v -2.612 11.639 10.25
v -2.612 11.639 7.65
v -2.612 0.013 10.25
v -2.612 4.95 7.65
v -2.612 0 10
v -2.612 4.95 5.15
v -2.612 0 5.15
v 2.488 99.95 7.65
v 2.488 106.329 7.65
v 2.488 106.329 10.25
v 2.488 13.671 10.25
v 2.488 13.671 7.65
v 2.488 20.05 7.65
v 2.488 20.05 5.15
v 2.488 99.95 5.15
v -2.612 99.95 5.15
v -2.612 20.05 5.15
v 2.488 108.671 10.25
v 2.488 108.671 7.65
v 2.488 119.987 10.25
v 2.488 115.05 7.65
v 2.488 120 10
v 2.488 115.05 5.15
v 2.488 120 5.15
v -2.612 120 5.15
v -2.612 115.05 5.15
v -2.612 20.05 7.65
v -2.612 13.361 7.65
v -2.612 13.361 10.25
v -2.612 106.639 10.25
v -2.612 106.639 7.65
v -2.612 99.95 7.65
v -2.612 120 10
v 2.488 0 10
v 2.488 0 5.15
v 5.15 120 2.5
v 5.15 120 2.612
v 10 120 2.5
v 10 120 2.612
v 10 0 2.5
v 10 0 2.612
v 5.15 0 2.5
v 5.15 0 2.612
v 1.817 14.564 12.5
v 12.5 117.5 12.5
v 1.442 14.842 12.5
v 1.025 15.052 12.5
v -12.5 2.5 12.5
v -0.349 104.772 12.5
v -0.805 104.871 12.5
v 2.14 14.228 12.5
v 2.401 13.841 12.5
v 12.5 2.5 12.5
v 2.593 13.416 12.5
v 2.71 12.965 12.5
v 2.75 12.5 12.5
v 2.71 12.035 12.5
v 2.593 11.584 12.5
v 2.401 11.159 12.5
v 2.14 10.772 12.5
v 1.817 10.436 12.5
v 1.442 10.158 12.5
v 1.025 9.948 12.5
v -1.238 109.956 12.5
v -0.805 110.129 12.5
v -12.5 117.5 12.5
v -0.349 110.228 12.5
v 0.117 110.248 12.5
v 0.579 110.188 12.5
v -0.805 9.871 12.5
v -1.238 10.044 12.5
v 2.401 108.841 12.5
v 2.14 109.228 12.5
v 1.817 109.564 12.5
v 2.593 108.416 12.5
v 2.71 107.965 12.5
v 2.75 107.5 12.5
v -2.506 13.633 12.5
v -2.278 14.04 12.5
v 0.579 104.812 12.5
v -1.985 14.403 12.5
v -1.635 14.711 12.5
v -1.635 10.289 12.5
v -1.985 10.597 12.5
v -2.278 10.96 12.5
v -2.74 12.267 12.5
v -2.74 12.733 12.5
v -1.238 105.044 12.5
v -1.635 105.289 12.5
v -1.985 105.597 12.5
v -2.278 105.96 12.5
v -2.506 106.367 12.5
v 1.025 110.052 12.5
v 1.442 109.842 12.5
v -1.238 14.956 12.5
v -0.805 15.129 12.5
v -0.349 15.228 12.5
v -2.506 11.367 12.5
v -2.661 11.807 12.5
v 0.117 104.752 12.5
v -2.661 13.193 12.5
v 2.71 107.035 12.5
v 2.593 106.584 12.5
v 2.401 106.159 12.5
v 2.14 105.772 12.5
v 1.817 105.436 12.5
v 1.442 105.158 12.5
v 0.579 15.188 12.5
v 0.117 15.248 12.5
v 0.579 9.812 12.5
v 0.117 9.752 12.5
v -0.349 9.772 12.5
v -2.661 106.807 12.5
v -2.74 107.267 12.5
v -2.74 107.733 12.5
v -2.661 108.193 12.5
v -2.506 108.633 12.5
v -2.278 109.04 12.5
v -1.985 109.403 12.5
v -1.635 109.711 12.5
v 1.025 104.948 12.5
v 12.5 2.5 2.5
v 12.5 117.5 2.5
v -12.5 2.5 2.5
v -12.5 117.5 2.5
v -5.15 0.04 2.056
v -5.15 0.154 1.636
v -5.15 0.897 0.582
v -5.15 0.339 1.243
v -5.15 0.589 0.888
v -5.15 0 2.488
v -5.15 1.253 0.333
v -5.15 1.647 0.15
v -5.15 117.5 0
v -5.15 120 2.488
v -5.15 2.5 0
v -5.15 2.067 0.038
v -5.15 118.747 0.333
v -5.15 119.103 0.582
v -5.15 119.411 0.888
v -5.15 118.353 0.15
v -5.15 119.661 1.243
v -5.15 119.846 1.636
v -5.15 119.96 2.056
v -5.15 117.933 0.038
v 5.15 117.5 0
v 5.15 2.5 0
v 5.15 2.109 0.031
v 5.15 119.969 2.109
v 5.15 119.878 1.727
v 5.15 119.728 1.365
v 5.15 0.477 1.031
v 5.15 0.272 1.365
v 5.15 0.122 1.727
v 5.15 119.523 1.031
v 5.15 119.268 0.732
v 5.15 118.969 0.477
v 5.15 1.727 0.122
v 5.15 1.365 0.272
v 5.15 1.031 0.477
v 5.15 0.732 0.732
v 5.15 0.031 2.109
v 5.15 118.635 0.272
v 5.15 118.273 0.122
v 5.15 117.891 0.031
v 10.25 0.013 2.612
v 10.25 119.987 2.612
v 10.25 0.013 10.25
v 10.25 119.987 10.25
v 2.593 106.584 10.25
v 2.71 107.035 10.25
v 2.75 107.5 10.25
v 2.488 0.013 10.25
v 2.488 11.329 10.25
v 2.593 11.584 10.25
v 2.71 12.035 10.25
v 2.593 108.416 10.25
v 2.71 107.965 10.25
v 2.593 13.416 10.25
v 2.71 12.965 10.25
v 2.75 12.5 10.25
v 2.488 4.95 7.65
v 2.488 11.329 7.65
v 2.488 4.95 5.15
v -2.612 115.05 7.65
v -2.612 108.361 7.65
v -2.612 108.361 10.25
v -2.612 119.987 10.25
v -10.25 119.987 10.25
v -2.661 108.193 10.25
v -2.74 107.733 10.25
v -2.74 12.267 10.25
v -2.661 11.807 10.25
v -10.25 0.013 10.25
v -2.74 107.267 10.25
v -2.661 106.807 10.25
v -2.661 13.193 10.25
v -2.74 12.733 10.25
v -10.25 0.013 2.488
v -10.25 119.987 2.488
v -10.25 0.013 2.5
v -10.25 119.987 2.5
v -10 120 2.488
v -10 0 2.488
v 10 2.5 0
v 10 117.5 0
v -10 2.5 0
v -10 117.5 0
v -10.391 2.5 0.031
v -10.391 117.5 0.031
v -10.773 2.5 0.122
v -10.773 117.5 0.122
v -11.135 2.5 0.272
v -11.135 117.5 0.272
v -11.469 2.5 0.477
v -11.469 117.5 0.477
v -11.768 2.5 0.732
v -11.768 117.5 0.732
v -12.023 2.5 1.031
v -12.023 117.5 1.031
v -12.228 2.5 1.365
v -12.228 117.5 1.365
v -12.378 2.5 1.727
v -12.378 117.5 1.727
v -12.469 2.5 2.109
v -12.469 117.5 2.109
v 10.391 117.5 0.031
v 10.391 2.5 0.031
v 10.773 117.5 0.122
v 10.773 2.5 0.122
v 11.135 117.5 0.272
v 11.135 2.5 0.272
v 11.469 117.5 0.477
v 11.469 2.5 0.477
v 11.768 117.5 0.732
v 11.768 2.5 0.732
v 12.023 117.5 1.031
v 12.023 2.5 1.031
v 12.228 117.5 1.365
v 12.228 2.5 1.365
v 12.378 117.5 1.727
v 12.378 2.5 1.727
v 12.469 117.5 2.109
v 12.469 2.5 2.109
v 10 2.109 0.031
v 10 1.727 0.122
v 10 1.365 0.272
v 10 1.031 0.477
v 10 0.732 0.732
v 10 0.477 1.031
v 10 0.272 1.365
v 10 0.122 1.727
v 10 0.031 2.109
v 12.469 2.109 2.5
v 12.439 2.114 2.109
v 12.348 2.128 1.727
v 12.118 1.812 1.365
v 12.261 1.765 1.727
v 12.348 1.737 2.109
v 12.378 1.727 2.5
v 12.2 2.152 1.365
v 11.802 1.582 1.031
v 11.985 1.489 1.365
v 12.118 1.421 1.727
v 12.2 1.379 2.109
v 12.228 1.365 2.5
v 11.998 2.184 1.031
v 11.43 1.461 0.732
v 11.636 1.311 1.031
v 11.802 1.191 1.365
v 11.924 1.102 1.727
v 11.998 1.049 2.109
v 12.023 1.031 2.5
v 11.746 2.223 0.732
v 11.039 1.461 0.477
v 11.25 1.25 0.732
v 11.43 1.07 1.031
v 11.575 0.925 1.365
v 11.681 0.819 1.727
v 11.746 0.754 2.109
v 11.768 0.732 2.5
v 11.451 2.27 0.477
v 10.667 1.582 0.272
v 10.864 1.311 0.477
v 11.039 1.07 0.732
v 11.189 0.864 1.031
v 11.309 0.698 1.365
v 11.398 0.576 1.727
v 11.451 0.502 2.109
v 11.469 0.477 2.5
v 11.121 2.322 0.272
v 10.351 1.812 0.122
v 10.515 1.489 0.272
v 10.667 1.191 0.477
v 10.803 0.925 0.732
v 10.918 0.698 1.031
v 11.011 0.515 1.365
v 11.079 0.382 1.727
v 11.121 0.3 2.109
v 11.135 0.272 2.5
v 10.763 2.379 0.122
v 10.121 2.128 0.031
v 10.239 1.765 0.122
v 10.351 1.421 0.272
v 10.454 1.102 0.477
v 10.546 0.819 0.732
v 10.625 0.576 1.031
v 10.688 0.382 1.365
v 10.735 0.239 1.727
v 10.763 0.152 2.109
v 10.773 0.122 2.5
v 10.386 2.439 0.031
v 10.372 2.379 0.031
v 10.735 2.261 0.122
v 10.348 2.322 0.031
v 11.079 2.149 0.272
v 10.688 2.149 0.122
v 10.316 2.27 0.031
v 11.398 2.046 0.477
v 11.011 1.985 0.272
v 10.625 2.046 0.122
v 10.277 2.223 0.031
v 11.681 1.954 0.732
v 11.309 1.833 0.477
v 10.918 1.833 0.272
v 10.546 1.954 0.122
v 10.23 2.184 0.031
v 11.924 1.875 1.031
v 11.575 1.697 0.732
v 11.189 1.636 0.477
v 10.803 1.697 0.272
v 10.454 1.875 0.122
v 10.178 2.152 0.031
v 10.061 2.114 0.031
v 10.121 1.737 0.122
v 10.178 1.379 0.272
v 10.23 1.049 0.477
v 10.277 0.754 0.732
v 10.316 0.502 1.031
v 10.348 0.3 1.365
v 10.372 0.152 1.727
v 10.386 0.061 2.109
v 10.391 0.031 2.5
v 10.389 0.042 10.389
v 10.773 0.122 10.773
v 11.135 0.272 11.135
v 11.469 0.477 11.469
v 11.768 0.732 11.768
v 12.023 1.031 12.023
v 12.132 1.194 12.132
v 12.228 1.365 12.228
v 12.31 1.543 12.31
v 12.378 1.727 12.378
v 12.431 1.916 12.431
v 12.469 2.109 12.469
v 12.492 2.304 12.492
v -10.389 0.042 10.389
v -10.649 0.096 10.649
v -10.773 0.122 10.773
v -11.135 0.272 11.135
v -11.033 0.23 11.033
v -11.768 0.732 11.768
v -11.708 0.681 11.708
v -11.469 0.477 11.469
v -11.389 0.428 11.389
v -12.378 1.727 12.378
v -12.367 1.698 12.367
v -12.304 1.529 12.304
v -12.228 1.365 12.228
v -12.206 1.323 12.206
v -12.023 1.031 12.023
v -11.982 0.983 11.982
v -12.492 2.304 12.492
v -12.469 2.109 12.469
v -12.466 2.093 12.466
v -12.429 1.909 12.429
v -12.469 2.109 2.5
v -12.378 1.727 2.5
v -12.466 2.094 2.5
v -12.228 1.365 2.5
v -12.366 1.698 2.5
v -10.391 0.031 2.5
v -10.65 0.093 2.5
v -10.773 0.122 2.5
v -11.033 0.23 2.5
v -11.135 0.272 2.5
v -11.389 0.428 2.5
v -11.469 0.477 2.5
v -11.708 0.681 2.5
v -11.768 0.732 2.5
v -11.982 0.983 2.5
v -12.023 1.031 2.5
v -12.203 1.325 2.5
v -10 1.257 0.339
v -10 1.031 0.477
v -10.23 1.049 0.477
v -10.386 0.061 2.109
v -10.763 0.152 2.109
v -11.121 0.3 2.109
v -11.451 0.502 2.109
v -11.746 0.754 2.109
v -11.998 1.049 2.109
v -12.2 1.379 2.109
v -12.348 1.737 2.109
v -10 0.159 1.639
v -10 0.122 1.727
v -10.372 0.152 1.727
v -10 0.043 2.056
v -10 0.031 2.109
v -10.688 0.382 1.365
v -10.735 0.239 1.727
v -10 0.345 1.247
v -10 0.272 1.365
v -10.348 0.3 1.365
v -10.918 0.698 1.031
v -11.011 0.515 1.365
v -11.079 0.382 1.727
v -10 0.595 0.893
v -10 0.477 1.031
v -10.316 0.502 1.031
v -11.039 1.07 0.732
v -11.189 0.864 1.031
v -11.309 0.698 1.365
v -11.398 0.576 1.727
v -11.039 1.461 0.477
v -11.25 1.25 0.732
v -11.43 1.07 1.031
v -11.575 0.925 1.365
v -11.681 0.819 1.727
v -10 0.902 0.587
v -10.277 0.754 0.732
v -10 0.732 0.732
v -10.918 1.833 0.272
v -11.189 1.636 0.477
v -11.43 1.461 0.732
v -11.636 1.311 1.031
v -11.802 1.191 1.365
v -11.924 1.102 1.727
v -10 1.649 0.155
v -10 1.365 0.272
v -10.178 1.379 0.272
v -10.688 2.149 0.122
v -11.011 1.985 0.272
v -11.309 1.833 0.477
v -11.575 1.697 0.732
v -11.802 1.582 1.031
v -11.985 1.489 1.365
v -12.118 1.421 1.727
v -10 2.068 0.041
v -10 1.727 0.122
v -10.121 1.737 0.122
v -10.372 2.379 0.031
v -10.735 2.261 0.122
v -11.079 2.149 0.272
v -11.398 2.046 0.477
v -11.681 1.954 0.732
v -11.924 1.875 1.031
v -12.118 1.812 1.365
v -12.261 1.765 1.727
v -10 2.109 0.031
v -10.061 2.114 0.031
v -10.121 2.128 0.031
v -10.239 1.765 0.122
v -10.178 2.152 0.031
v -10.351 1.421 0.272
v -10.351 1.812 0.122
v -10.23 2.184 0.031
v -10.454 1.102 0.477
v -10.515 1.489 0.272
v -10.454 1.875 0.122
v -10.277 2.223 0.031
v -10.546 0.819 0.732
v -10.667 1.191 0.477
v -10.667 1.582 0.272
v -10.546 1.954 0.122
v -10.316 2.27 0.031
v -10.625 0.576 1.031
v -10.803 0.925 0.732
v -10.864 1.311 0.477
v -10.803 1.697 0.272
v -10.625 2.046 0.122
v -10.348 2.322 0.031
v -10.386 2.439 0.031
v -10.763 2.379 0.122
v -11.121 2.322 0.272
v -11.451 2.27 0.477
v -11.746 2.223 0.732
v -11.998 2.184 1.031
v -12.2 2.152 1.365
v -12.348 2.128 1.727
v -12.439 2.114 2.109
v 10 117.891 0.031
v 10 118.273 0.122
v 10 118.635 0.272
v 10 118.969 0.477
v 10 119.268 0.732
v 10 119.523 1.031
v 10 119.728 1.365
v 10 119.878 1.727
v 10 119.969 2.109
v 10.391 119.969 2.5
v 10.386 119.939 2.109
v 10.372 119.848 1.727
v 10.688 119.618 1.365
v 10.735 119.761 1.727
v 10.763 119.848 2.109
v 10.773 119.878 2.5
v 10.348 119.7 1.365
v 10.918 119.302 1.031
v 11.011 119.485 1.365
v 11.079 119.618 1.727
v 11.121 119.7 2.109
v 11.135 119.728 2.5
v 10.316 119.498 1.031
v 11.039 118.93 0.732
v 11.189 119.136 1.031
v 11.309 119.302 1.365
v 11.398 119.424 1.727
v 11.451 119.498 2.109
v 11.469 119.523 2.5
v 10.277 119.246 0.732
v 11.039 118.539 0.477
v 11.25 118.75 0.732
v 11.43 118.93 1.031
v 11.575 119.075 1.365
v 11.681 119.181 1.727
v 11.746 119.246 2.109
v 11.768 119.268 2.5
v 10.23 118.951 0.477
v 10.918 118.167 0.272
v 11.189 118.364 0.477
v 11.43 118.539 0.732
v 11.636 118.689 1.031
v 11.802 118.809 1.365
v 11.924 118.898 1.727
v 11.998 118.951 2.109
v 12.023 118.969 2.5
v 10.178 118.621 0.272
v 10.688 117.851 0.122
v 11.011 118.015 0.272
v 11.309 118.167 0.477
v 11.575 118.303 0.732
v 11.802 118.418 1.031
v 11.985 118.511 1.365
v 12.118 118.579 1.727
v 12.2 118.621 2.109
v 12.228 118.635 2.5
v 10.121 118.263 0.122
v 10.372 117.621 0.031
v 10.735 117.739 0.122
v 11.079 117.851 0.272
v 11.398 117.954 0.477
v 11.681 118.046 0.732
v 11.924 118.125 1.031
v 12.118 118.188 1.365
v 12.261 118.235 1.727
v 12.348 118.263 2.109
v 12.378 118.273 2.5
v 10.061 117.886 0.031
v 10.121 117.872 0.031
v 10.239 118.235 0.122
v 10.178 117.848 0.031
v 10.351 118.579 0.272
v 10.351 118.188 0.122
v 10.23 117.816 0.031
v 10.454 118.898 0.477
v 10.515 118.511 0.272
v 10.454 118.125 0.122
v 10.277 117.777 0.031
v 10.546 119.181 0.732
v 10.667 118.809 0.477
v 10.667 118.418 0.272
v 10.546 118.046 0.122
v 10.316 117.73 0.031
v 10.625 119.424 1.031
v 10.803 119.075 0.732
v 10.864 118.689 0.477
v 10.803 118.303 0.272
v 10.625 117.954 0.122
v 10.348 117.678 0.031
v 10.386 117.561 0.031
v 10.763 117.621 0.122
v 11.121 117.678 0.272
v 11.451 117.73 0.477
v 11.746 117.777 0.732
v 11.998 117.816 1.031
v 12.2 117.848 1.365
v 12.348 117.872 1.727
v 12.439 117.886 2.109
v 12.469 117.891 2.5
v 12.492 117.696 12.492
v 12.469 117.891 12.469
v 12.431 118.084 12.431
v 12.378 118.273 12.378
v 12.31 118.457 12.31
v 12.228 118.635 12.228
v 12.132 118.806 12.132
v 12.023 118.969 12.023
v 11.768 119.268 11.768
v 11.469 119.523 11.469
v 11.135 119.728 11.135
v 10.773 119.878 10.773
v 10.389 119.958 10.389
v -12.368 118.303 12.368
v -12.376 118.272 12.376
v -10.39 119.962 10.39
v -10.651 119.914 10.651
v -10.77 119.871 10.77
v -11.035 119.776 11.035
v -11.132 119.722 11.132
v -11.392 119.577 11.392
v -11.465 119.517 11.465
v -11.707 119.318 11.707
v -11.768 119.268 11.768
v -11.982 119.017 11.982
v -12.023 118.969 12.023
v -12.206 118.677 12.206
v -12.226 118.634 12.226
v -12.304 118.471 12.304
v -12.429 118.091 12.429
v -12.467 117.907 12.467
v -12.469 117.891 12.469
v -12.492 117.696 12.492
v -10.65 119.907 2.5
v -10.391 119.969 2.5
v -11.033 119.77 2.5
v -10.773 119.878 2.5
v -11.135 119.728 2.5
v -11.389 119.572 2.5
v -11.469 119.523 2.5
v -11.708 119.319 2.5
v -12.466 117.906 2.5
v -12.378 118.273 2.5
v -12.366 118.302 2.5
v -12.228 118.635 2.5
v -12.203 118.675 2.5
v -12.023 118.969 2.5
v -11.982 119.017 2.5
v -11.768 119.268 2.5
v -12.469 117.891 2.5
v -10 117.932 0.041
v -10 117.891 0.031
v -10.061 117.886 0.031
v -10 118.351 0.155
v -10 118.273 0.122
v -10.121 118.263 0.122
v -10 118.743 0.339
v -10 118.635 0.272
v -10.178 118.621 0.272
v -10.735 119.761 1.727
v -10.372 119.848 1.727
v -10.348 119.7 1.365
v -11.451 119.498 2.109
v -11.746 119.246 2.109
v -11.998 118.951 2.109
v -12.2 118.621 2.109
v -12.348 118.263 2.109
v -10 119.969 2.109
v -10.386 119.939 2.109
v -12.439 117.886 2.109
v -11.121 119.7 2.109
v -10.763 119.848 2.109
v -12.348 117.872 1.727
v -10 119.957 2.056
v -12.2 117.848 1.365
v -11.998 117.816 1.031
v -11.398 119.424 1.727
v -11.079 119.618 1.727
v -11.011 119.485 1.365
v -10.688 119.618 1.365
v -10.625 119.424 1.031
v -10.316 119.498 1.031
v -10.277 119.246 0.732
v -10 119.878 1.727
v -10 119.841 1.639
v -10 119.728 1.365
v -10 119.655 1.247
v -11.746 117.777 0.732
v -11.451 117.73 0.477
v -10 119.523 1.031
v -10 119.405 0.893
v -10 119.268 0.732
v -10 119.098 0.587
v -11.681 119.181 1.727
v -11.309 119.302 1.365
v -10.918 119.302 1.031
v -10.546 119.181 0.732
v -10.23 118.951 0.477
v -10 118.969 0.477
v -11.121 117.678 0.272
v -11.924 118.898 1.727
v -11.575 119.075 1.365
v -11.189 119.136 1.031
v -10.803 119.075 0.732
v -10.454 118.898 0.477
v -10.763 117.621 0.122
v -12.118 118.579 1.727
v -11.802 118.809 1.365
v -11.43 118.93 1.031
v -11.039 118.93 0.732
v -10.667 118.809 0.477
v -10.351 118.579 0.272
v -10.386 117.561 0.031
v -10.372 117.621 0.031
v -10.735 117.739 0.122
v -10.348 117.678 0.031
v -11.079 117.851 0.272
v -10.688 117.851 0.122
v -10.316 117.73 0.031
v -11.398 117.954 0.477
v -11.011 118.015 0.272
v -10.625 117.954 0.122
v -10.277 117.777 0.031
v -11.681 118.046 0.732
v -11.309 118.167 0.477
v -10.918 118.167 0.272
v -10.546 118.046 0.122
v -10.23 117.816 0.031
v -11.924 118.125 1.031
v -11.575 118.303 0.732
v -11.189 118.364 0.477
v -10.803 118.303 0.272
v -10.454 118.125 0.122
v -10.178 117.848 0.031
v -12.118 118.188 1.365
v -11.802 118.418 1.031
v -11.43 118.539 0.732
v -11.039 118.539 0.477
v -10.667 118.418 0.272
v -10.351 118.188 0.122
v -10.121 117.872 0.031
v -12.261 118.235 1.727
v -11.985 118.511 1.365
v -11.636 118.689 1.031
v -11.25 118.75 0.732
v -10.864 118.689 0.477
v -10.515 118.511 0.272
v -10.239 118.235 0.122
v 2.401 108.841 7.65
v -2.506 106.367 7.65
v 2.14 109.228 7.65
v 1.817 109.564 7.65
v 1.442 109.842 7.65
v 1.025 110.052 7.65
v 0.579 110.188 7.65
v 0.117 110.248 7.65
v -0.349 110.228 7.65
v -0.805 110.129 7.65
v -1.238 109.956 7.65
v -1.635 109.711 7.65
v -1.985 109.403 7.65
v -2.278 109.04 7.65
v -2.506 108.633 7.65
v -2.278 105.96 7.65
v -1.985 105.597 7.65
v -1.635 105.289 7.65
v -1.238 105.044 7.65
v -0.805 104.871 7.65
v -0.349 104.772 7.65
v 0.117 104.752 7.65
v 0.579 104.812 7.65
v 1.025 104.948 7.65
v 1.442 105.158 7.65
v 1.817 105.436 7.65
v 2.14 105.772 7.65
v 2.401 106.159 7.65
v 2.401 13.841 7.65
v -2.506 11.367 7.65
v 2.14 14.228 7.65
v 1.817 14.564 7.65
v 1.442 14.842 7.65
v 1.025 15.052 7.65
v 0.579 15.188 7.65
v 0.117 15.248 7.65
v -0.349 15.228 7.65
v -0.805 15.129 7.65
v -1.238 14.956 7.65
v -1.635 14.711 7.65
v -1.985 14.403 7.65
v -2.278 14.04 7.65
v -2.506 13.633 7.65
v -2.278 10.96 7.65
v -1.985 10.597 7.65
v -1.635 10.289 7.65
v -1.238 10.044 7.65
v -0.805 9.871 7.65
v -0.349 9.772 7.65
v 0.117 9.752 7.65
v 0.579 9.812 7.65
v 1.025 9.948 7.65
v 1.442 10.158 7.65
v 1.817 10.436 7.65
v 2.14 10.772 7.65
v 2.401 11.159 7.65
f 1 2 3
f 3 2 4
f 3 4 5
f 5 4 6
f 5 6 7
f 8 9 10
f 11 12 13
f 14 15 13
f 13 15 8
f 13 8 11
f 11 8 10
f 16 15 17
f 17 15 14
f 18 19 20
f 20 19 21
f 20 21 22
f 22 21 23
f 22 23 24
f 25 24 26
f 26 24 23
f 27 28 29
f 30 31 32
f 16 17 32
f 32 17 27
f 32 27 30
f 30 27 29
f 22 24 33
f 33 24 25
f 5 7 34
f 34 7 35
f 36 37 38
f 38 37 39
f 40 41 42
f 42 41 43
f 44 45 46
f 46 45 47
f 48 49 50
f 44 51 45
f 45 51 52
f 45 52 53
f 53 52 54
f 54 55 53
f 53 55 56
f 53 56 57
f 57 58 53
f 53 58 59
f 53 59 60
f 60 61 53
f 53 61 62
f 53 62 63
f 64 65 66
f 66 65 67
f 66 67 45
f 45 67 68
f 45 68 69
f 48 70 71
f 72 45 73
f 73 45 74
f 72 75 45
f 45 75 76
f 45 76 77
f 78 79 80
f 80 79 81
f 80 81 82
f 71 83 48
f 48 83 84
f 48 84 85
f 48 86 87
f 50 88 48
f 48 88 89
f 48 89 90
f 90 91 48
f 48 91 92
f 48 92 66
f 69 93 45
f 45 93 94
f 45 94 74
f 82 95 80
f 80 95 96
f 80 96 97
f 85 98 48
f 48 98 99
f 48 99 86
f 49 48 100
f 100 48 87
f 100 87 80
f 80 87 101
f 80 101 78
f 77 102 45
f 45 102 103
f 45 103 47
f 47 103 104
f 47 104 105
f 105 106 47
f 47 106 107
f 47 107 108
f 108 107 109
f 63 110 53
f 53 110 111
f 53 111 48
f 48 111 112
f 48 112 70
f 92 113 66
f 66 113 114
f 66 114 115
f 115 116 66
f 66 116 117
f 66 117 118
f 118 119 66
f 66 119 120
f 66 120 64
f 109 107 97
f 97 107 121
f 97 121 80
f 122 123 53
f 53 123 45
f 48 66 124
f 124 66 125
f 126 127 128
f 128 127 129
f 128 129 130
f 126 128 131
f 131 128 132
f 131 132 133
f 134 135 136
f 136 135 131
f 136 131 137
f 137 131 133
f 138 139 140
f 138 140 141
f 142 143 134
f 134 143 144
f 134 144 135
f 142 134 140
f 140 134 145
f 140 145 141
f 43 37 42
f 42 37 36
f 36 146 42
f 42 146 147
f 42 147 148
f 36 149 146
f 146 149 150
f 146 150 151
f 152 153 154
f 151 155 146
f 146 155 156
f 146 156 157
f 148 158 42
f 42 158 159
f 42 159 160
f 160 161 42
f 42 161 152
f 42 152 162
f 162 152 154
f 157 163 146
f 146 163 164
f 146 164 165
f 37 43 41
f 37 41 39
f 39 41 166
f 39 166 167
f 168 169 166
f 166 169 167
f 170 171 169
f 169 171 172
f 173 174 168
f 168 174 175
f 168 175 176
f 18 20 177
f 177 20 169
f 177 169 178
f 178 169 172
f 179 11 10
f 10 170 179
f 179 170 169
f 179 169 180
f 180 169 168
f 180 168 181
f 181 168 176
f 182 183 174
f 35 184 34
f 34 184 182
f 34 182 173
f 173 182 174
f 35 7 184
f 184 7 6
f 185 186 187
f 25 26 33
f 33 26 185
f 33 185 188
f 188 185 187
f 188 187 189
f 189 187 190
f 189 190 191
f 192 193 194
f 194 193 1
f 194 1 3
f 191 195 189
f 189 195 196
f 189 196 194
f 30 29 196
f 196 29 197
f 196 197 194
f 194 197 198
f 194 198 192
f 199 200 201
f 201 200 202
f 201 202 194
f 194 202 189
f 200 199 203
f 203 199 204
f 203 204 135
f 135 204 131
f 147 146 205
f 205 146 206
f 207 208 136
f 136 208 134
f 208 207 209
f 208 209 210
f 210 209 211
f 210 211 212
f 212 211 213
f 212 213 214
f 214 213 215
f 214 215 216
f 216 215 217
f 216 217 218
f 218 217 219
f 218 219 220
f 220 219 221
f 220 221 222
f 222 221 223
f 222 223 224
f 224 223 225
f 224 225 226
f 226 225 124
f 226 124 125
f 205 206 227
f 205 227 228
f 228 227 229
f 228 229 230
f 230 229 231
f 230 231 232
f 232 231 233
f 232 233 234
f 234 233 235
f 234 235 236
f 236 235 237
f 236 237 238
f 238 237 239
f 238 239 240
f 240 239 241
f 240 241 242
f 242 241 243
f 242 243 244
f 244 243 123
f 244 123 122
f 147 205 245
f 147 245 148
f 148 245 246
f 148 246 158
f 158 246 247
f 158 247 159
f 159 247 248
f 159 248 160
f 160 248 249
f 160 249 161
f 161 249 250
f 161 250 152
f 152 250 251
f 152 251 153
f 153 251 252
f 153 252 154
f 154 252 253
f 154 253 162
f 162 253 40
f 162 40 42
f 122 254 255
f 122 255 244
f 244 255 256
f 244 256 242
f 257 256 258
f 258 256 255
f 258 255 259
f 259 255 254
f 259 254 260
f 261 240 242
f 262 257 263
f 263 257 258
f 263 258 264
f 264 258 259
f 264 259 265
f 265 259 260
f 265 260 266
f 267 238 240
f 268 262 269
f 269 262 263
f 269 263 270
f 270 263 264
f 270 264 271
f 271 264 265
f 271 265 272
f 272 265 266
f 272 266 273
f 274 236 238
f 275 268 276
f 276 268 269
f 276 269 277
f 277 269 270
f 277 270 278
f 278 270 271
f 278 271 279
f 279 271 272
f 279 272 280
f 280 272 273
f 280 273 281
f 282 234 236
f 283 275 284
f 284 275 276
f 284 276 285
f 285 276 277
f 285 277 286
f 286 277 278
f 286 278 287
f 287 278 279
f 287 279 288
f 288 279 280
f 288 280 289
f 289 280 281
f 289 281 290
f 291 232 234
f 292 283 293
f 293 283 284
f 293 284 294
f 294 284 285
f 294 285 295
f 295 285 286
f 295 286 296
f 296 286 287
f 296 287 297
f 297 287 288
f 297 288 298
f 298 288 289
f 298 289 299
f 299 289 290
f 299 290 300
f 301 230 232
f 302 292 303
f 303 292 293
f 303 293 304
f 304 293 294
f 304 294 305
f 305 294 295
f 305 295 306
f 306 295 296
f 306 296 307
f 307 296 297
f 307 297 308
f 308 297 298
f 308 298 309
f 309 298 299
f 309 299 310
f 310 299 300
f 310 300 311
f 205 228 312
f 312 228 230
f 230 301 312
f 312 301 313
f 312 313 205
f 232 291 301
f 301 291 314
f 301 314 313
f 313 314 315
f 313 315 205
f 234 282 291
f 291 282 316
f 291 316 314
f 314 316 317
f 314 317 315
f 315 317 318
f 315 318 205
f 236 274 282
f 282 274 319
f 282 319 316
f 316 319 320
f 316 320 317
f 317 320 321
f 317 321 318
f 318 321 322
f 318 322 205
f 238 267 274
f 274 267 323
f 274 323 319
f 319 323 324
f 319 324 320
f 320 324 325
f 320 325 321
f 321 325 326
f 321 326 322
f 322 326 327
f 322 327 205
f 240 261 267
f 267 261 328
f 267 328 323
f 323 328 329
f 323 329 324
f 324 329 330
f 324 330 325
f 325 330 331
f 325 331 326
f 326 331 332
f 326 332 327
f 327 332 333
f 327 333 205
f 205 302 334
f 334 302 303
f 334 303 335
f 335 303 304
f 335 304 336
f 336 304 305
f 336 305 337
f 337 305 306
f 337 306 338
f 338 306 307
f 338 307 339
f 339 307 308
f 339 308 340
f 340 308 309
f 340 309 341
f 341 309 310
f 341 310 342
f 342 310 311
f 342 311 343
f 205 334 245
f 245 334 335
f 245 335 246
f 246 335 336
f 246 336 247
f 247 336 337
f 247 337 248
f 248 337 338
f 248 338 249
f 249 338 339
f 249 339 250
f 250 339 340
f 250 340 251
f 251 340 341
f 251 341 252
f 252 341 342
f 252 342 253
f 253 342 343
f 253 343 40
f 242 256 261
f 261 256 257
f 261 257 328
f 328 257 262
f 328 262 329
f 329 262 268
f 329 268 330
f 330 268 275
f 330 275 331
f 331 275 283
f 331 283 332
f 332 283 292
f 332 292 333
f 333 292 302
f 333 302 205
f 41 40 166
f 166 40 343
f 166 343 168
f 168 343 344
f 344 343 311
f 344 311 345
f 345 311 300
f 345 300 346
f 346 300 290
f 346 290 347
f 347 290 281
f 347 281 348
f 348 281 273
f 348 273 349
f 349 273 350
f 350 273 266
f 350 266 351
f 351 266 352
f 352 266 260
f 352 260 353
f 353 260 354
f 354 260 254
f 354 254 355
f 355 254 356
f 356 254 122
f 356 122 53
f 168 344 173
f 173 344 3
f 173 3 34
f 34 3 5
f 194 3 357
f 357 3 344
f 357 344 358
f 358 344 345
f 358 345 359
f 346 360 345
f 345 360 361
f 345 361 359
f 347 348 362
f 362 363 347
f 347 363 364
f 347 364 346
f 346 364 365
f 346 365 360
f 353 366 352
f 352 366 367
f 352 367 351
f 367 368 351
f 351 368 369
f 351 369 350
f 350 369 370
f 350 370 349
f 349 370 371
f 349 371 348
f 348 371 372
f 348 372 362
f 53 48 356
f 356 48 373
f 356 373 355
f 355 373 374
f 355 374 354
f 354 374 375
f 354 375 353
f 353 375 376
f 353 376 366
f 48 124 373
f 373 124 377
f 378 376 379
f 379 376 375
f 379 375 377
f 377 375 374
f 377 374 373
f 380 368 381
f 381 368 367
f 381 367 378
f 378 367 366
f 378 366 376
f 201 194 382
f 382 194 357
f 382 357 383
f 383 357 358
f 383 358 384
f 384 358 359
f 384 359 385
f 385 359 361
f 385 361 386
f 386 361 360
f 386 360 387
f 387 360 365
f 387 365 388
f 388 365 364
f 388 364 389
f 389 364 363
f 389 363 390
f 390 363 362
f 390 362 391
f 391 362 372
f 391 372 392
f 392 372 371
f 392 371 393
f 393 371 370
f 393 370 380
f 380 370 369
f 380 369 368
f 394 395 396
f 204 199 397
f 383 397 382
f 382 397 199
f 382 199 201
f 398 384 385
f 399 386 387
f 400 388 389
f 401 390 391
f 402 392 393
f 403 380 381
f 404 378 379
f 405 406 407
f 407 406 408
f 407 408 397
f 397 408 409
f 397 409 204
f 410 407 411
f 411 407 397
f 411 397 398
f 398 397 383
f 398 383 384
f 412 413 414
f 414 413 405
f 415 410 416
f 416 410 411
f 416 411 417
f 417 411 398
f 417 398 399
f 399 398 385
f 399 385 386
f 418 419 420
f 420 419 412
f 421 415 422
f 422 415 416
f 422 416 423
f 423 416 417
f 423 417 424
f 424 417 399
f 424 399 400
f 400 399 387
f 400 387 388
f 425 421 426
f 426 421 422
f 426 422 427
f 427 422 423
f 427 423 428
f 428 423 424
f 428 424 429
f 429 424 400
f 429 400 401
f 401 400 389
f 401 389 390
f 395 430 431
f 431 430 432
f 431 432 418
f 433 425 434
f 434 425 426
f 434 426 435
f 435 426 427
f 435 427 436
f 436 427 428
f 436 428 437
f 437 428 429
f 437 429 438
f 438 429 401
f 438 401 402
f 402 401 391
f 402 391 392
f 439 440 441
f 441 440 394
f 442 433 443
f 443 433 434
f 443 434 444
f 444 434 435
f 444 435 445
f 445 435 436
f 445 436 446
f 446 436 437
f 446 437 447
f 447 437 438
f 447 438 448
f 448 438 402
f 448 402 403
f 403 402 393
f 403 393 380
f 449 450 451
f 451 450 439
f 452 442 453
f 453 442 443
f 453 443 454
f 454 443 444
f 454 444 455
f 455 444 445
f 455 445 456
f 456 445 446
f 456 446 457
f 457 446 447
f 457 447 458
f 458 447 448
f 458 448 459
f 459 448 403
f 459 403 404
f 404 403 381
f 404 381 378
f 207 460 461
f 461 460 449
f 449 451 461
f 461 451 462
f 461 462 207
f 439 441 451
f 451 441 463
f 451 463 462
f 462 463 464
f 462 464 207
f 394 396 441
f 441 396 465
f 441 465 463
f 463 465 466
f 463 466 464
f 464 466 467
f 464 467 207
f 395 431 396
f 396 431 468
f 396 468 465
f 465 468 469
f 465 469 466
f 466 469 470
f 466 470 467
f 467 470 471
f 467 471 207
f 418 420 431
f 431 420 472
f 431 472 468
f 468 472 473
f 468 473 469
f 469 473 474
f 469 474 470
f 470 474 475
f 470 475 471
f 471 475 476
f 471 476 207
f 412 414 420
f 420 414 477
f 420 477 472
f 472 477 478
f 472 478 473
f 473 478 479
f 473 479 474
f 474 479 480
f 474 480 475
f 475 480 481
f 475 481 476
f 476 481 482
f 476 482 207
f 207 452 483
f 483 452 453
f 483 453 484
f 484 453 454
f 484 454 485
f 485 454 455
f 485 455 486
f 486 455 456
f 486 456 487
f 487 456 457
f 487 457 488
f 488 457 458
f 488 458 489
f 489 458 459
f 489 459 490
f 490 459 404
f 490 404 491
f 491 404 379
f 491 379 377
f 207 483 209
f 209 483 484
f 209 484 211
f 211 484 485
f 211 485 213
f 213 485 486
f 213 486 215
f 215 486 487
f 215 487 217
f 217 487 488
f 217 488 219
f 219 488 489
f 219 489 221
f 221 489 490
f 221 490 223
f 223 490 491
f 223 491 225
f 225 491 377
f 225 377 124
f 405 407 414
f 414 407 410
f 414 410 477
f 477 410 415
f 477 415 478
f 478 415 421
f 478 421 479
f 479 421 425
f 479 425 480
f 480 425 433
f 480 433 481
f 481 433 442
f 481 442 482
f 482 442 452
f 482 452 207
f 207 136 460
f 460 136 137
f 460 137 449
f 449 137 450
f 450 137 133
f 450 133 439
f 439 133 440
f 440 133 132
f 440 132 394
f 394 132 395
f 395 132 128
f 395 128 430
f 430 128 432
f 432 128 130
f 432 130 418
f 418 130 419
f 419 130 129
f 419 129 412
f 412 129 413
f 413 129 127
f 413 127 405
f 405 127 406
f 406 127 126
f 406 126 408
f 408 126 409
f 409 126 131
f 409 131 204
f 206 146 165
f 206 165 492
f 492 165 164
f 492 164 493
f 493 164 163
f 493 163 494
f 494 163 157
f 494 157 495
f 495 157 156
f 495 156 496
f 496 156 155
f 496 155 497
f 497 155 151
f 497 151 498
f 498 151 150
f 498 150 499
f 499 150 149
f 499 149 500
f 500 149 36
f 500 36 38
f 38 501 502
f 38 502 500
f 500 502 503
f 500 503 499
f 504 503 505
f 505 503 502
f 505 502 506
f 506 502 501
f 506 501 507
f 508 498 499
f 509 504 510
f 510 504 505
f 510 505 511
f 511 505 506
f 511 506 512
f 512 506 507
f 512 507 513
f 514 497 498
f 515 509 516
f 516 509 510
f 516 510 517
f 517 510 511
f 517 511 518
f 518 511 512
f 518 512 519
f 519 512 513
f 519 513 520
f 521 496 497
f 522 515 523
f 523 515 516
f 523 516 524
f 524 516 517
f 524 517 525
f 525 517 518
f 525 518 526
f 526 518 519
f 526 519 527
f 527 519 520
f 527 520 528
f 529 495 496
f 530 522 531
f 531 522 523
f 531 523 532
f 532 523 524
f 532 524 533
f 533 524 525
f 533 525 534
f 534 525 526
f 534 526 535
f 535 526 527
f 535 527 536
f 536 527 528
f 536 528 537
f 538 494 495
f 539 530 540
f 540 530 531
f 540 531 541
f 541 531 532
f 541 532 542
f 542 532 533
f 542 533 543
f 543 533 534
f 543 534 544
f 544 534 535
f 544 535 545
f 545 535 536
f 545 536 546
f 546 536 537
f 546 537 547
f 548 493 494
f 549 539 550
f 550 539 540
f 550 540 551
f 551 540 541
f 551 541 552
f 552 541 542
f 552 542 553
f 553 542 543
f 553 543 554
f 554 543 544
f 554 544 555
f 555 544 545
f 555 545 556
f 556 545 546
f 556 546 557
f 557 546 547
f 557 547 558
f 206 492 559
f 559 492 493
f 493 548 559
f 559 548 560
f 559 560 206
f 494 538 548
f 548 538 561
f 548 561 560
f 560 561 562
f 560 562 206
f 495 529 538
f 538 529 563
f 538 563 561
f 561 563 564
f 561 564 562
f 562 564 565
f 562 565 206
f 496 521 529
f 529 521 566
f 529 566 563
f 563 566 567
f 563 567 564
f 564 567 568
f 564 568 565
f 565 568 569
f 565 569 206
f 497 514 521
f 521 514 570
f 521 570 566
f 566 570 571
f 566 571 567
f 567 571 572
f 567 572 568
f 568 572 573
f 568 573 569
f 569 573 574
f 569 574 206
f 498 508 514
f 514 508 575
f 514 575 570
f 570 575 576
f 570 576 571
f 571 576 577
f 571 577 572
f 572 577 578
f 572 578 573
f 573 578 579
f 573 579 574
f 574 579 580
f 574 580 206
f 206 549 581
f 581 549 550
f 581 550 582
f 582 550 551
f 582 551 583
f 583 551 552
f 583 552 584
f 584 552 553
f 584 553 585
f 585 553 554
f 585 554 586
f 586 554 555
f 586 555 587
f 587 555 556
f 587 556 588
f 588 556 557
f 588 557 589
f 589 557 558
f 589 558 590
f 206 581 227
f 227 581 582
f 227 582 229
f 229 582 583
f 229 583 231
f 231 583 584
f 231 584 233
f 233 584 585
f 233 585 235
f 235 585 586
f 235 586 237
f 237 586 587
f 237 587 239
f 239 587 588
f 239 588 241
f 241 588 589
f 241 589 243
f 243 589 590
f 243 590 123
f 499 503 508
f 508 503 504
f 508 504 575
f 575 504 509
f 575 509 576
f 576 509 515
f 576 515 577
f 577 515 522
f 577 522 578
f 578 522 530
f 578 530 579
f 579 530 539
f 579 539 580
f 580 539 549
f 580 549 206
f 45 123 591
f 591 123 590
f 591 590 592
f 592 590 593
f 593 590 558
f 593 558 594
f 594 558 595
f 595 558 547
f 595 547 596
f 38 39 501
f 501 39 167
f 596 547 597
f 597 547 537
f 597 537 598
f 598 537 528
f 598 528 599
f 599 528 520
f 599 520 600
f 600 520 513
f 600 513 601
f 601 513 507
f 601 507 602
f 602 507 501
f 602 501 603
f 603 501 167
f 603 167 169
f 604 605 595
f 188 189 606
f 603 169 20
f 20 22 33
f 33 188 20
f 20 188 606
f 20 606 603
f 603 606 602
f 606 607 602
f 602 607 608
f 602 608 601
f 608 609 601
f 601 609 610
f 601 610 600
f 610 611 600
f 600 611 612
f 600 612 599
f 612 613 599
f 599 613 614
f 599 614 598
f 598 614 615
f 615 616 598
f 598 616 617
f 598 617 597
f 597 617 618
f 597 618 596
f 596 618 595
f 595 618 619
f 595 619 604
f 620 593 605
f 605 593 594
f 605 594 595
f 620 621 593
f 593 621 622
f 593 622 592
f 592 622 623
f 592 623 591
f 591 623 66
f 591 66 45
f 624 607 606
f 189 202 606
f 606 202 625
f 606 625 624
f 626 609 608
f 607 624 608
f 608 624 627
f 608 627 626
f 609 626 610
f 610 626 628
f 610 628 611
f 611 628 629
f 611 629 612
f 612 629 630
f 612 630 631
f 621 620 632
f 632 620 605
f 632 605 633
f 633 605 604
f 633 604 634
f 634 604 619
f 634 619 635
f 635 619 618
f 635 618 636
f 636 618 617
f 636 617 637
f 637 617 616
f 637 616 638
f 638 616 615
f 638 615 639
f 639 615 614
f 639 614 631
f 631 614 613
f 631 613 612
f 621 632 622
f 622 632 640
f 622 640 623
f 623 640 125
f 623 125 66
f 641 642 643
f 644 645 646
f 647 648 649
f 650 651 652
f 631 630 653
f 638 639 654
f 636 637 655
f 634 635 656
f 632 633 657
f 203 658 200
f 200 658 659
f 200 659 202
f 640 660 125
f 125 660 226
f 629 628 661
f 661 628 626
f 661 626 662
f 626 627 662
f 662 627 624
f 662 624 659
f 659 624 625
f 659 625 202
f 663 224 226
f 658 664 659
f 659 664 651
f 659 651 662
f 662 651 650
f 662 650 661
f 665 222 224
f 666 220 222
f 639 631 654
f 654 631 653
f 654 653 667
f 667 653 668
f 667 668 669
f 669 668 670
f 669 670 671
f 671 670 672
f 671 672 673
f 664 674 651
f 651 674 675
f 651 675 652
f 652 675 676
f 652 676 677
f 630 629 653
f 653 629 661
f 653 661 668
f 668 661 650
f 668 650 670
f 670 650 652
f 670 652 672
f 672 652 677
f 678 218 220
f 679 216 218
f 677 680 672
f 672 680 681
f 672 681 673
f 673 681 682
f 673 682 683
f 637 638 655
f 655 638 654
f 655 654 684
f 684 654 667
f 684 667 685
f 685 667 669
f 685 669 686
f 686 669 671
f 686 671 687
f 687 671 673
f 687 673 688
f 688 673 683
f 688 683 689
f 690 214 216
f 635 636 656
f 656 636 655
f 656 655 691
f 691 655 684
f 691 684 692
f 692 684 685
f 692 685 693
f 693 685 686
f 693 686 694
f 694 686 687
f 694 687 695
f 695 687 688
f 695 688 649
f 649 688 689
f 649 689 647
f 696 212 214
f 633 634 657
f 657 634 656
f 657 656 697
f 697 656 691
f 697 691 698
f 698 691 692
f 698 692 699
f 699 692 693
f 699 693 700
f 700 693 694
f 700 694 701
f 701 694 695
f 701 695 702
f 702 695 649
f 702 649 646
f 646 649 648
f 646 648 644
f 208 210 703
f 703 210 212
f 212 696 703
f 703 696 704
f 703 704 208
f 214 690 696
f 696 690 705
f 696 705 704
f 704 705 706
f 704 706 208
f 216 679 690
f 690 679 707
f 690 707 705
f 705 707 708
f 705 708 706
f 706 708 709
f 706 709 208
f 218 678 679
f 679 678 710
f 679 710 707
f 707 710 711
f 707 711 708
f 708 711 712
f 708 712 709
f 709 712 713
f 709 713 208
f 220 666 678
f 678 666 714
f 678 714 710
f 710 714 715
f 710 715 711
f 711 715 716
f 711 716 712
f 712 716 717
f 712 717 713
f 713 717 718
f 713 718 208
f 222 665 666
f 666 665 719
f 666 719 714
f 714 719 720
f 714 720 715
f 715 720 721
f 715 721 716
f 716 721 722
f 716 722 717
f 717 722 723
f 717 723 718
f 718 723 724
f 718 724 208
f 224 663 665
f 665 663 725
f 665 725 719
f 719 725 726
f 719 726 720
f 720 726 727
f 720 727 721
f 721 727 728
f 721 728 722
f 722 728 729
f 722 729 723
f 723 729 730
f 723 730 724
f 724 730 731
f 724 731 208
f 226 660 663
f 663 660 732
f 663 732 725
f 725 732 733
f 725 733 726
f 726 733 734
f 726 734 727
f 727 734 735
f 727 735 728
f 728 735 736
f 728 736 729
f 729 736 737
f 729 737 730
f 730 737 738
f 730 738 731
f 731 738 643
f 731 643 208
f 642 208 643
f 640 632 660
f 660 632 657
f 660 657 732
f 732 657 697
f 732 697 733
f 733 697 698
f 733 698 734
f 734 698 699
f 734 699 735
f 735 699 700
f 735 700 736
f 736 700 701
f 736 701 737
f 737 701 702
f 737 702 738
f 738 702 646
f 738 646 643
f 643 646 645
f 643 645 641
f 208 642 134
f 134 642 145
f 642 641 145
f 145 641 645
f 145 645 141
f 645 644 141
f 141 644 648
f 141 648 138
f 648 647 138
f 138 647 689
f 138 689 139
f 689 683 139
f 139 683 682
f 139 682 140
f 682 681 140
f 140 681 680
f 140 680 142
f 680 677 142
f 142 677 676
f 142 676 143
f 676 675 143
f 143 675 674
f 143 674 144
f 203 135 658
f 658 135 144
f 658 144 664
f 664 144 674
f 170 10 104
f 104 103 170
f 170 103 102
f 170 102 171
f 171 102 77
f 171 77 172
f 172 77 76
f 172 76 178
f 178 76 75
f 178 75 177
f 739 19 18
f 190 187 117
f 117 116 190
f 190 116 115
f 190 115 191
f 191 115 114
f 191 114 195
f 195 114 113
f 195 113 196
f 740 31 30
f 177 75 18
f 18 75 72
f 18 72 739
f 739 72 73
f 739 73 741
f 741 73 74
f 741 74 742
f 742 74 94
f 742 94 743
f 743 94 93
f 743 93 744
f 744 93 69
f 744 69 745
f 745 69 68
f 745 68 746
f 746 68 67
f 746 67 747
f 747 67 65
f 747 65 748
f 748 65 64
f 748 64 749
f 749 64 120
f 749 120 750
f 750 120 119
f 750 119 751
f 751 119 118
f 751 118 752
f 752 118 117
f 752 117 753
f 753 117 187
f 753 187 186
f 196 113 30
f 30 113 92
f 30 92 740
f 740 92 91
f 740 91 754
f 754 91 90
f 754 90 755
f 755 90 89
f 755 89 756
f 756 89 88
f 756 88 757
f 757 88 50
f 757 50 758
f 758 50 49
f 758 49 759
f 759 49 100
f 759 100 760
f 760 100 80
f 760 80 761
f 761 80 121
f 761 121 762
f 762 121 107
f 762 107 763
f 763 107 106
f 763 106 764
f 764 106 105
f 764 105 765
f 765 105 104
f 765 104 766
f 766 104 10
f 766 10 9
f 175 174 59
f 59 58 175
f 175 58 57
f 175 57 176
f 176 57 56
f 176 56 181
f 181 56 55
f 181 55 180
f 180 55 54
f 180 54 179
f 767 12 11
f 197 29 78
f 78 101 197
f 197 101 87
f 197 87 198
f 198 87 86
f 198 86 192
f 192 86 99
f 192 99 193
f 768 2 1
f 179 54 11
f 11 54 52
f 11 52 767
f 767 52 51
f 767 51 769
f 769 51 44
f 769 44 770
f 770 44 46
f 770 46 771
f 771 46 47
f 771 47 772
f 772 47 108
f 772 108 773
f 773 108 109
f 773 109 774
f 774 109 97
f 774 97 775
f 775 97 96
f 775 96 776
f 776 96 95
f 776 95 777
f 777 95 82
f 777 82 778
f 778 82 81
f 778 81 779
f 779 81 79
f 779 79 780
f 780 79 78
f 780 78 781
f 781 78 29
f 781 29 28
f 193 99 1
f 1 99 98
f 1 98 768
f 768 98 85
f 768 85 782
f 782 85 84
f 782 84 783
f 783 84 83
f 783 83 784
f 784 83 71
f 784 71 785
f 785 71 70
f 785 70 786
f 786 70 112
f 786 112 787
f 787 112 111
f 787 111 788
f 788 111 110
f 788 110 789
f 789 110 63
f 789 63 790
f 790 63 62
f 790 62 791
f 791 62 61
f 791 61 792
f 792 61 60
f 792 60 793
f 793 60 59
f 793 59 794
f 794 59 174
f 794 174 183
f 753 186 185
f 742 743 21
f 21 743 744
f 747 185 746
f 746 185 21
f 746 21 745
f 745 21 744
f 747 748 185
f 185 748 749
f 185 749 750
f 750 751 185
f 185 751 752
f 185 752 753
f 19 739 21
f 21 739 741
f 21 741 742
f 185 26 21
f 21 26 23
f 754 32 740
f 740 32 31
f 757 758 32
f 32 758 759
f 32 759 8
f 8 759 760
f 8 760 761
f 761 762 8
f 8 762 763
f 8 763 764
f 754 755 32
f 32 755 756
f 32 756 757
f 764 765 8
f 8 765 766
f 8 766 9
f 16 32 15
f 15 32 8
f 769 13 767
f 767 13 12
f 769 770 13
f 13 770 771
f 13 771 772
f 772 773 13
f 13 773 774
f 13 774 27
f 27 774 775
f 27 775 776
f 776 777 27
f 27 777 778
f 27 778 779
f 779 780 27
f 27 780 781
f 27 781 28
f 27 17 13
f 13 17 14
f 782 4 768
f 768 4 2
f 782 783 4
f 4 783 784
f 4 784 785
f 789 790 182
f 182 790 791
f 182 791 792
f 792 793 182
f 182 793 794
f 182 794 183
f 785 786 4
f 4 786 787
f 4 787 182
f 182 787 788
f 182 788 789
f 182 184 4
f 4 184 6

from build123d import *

# Parameters (mm, degrees)
SKETCH1_W           = 25
SKETCH1_H           = 25
BOSS_EXTRUDE1_DEPTH = 120
CUT_EXTRUDE1_DEPTH  = 120
SKETCH3_W           = 25
SKETCH3_H           = 12.5
CUT_EXTRUDE2_DEPTH  = 120
FILLET1_R           = 2.5
FILLET2_R           = 2.5
FILLET3_R           = 2.5
SKETCH6_R           = 2.75
CUT_EXTRUDE3_DEPTH  = 10
SKETCH7_W           = 10.05
SKETCH7_H           = 15.1
CUT_EXTRUDE4_DEPTH  = 2.5


with BuildPart() as part:
    # Sketch1 → Boss-Extrude1 (new body)
    with BuildSketch(Plane(origin=(0, 0, 0), x_dir=(1, 0, 0), z_dir=(0, 1, 0))):
        Rectangle(SKETCH1_W, SKETCH1_H)
    extrude(amount=BOSS_EXTRUDE1_DEPTH)

    # Sketch2 → Cut-Extrude1 (cut)
    with BuildSketch(Plane(origin=(0, 120, 0), x_dir=(1, 0, 0), z_dir=(0, 1, 0))):
        Polygon((-10.25, -2.48824277), (-10.25, -10.25), (-2.61175723, -10.25), (-2.61175723, -5.15), (2.48824277, -5.15), (2.48824277, -10.25), (10.25, -10.25), (10.25, -2.61175723), (5.15, -2.61175723), (5.15, 2.48824277), (10.25, 2.48824277), (10.25, 10.25), (2.61175723, 10.25), (2.61175723, 5.15), (-2.48824277, 5.15), (-2.48824277, 10.25), (-10.25, 10.25), (-10.25, 2.61175723), (-5.15, 2.61175723), (-5.15, -2.48824277), align=None)
    extrude(amount=-CUT_EXTRUDE1_DEPTH, mode=Mode.SUBTRACT)

    # Sketch3 → Cut-Extrude2 (cut)
    with BuildSketch(Plane(origin=(0, 120, 0), x_dir=(1, 0, 0), z_dir=(0, 1, 0))):
        with Locations((0, 6.25)):
            Rectangle(SKETCH3_W, SKETCH3_H)
    extrude(amount=-CUT_EXTRUDE2_DEPTH, mode=Mode.SUBTRACT)

    # Fillet1
    fillet1_edges = [part.edges().sort_by_distance(p)[0] for p in [
        (-12.5, 60, 0),
    ]]
    fillet(fillet1_edges, radius=FILLET1_R)

    # Fillet2
    fillet2_edges = [part.edges().sort_by_distance(p)[0] for p in [
        (12.5, 60, 0),
    ]]
    fillet(fillet2_edges, radius=FILLET2_R)

    # Fillet3
    # the kernel refuses this fillet: 2.5 mm, written as the material it takes off along each edge
    with BuildSketch(Plane(origin=(-10, 0, 0), x_dir=(0, 0, 1), z_dir=(1, 0, 0)), Plane(origin=(-1.1, 0, 0), x_dir=(0, 0, 1), z_dir=(1, 0, 0)), Plane(origin=(-10, 120, 0), x_dir=(0, -1, 0), z_dir=(1, 0, 0)), Plane(origin=(-1.1, 120, 0), x_dir=(0, -1, 0), z_dir=(1, 0, 0))) as fillet3_piece_1:
        with BuildLine():
            CenterArc((FILLET3_R, -FILLET3_R), FILLET3_R, 90, 90)
            Line((0, -FILLET3_R), (0, 0))
            Line((0, 0), (FILLET3_R, 0))
        make_face()
    extrude(amount=11.1, mode=Mode.SUBTRACT)
    with BuildSketch(Plane(origin=(-10, 0, 2.5), x_dir=(-1, 0, 0), z_dir=(0, 0, 1))) as fillet3_piece_2:
        with BuildLine():
            CenterArc((2.5 - FILLET3_R, -FILLET3_R), FILLET3_R, 0, 90)
            Line((2.5, -FILLET3_R), (2.5, 0))
            Line((2.5, 0), (2.5 - FILLET3_R, 0))
        make_face()
    revolve(axis=Axis((-10, 0, 2.5), (0, -1, 0)), revolution_arc=90, mode=Mode.SUBTRACT)
    with BuildSketch(Plane(origin=(10, 0, 2.5), x_dir=(1, 0, 0), z_dir=(0, 0, 1))) as fillet3_piece_3:
        with BuildLine():
            CenterArc((2.5 - FILLET3_R, FILLET3_R), FILLET3_R, 270, 90)
            Line((2.5, FILLET3_R), (2.5, 0))
            Line((2.5, 0), (2.5 - FILLET3_R, 0))
        make_face()
    revolve(axis=Axis((10, 0, 2.5), (0, 1, 0)), revolution_arc=90, mode=Mode.SUBTRACT)
    with BuildSketch(Plane(origin=(-10, 120, 2.5), x_dir=(-1, 0, 0), z_dir=(0, 0, 1))) as fillet3_piece_4:
        with BuildLine():
            CenterArc((2.5 - FILLET3_R, FILLET3_R), FILLET3_R, 270, 90)
            Line((2.5 - FILLET3_R, 0), (2.5, 0))
            Line((2.5, 0), (2.5, FILLET3_R))
        make_face()
    revolve(axis=Axis((-10, 120, 2.5), (0, -1, 0)), revolution_arc=90, mode=Mode.SUBTRACT)
    with BuildSketch(Plane(origin=(10, 120, 2.5), x_dir=(1, 0, 0), z_dir=(0, 0, 1))) as fillet3_piece_5:
        with BuildLine():
            CenterArc((2.5 - FILLET3_R, -FILLET3_R), FILLET3_R, 0, 90)
            Line((2.5 - FILLET3_R, 0), (2.5, 0))
            Line((2.5, 0), (2.5, -FILLET3_R))
        make_face()
    revolve(axis=Axis((10, 120, 2.5), (0, 1, 0)), revolution_arc=90, mode=Mode.SUBTRACT)
    with BuildSketch(Plane(origin=(-18.75, 0, 12.5), x_dir=(0, 0, -1), z_dir=(1, 0, 0)), Plane(origin=(-18.75, 120, 12.5), x_dir=(0, -1, 0), z_dir=(1, 0, 0))) as fillet3_piece_6:
        with BuildLine():
            CenterArc((FILLET3_R, FILLET3_R), FILLET3_R, 180, 90)
            Line((0, FILLET3_R), (0, 0))
            Line((0, 0), (FILLET3_R, 0))
        make_face()
    extrude(amount=37.5, mode=Mode.SUBTRACT)
    with BuildSketch(Plane(origin=(-12.5, 0, 2.5), x_dir=(1, 0, 0), z_dir=(0, 0, 1)), Plane(origin=(12.5, 0, 18.75), x_dir=(-1, 0, 0), z_dir=(0, 0, -1)), Plane(origin=(-12.5, 120, 2.5), x_dir=(0, -1, 0), z_dir=(0, 0, 1)), Plane(origin=(12.5, 120, 18.75), x_dir=(0, -1, 0), z_dir=(0, 0, -1))) as fillet3_piece_7:
        with BuildLine():
            CenterArc((FILLET3_R, FILLET3_R), FILLET3_R, 180, 90)
            Line((0, FILLET3_R), (0, 0))
            Line((0, 0), (FILLET3_R, 0))
        make_face()
    extrude(amount=16.25, mode=Mode.SUBTRACT)

    # Sketch6 → Cut-Extrude3 (cut)
    with BuildSketch(Plane.XY.offset(12.5)):
        with Locations((0, 107.5)):
            Circle(SKETCH6_R)
        with Locations((0, 12.5)):
            Circle(SKETCH6_R)
    extrude(amount=-CUT_EXTRUDE3_DEPTH, mode=Mode.SUBTRACT)

    # Sketch7 → Cut-Extrude4 (cut)
    with BuildSketch(Plane(origin=(0, 0, 5.15), x_dir=(-1, 0, 0), z_dir=(0, 0, -1))):
        with Locations((0, 107.5)):
            Rectangle(SKETCH7_W, SKETCH7_H)
        with Locations((0, 12.5)):
            Rectangle(SKETCH7_W, SKETCH7_H)
    extrude(amount=-CUT_EXTRUDE4_DEPTH, mode=Mode.SUBTRACT)


solid = part.part
